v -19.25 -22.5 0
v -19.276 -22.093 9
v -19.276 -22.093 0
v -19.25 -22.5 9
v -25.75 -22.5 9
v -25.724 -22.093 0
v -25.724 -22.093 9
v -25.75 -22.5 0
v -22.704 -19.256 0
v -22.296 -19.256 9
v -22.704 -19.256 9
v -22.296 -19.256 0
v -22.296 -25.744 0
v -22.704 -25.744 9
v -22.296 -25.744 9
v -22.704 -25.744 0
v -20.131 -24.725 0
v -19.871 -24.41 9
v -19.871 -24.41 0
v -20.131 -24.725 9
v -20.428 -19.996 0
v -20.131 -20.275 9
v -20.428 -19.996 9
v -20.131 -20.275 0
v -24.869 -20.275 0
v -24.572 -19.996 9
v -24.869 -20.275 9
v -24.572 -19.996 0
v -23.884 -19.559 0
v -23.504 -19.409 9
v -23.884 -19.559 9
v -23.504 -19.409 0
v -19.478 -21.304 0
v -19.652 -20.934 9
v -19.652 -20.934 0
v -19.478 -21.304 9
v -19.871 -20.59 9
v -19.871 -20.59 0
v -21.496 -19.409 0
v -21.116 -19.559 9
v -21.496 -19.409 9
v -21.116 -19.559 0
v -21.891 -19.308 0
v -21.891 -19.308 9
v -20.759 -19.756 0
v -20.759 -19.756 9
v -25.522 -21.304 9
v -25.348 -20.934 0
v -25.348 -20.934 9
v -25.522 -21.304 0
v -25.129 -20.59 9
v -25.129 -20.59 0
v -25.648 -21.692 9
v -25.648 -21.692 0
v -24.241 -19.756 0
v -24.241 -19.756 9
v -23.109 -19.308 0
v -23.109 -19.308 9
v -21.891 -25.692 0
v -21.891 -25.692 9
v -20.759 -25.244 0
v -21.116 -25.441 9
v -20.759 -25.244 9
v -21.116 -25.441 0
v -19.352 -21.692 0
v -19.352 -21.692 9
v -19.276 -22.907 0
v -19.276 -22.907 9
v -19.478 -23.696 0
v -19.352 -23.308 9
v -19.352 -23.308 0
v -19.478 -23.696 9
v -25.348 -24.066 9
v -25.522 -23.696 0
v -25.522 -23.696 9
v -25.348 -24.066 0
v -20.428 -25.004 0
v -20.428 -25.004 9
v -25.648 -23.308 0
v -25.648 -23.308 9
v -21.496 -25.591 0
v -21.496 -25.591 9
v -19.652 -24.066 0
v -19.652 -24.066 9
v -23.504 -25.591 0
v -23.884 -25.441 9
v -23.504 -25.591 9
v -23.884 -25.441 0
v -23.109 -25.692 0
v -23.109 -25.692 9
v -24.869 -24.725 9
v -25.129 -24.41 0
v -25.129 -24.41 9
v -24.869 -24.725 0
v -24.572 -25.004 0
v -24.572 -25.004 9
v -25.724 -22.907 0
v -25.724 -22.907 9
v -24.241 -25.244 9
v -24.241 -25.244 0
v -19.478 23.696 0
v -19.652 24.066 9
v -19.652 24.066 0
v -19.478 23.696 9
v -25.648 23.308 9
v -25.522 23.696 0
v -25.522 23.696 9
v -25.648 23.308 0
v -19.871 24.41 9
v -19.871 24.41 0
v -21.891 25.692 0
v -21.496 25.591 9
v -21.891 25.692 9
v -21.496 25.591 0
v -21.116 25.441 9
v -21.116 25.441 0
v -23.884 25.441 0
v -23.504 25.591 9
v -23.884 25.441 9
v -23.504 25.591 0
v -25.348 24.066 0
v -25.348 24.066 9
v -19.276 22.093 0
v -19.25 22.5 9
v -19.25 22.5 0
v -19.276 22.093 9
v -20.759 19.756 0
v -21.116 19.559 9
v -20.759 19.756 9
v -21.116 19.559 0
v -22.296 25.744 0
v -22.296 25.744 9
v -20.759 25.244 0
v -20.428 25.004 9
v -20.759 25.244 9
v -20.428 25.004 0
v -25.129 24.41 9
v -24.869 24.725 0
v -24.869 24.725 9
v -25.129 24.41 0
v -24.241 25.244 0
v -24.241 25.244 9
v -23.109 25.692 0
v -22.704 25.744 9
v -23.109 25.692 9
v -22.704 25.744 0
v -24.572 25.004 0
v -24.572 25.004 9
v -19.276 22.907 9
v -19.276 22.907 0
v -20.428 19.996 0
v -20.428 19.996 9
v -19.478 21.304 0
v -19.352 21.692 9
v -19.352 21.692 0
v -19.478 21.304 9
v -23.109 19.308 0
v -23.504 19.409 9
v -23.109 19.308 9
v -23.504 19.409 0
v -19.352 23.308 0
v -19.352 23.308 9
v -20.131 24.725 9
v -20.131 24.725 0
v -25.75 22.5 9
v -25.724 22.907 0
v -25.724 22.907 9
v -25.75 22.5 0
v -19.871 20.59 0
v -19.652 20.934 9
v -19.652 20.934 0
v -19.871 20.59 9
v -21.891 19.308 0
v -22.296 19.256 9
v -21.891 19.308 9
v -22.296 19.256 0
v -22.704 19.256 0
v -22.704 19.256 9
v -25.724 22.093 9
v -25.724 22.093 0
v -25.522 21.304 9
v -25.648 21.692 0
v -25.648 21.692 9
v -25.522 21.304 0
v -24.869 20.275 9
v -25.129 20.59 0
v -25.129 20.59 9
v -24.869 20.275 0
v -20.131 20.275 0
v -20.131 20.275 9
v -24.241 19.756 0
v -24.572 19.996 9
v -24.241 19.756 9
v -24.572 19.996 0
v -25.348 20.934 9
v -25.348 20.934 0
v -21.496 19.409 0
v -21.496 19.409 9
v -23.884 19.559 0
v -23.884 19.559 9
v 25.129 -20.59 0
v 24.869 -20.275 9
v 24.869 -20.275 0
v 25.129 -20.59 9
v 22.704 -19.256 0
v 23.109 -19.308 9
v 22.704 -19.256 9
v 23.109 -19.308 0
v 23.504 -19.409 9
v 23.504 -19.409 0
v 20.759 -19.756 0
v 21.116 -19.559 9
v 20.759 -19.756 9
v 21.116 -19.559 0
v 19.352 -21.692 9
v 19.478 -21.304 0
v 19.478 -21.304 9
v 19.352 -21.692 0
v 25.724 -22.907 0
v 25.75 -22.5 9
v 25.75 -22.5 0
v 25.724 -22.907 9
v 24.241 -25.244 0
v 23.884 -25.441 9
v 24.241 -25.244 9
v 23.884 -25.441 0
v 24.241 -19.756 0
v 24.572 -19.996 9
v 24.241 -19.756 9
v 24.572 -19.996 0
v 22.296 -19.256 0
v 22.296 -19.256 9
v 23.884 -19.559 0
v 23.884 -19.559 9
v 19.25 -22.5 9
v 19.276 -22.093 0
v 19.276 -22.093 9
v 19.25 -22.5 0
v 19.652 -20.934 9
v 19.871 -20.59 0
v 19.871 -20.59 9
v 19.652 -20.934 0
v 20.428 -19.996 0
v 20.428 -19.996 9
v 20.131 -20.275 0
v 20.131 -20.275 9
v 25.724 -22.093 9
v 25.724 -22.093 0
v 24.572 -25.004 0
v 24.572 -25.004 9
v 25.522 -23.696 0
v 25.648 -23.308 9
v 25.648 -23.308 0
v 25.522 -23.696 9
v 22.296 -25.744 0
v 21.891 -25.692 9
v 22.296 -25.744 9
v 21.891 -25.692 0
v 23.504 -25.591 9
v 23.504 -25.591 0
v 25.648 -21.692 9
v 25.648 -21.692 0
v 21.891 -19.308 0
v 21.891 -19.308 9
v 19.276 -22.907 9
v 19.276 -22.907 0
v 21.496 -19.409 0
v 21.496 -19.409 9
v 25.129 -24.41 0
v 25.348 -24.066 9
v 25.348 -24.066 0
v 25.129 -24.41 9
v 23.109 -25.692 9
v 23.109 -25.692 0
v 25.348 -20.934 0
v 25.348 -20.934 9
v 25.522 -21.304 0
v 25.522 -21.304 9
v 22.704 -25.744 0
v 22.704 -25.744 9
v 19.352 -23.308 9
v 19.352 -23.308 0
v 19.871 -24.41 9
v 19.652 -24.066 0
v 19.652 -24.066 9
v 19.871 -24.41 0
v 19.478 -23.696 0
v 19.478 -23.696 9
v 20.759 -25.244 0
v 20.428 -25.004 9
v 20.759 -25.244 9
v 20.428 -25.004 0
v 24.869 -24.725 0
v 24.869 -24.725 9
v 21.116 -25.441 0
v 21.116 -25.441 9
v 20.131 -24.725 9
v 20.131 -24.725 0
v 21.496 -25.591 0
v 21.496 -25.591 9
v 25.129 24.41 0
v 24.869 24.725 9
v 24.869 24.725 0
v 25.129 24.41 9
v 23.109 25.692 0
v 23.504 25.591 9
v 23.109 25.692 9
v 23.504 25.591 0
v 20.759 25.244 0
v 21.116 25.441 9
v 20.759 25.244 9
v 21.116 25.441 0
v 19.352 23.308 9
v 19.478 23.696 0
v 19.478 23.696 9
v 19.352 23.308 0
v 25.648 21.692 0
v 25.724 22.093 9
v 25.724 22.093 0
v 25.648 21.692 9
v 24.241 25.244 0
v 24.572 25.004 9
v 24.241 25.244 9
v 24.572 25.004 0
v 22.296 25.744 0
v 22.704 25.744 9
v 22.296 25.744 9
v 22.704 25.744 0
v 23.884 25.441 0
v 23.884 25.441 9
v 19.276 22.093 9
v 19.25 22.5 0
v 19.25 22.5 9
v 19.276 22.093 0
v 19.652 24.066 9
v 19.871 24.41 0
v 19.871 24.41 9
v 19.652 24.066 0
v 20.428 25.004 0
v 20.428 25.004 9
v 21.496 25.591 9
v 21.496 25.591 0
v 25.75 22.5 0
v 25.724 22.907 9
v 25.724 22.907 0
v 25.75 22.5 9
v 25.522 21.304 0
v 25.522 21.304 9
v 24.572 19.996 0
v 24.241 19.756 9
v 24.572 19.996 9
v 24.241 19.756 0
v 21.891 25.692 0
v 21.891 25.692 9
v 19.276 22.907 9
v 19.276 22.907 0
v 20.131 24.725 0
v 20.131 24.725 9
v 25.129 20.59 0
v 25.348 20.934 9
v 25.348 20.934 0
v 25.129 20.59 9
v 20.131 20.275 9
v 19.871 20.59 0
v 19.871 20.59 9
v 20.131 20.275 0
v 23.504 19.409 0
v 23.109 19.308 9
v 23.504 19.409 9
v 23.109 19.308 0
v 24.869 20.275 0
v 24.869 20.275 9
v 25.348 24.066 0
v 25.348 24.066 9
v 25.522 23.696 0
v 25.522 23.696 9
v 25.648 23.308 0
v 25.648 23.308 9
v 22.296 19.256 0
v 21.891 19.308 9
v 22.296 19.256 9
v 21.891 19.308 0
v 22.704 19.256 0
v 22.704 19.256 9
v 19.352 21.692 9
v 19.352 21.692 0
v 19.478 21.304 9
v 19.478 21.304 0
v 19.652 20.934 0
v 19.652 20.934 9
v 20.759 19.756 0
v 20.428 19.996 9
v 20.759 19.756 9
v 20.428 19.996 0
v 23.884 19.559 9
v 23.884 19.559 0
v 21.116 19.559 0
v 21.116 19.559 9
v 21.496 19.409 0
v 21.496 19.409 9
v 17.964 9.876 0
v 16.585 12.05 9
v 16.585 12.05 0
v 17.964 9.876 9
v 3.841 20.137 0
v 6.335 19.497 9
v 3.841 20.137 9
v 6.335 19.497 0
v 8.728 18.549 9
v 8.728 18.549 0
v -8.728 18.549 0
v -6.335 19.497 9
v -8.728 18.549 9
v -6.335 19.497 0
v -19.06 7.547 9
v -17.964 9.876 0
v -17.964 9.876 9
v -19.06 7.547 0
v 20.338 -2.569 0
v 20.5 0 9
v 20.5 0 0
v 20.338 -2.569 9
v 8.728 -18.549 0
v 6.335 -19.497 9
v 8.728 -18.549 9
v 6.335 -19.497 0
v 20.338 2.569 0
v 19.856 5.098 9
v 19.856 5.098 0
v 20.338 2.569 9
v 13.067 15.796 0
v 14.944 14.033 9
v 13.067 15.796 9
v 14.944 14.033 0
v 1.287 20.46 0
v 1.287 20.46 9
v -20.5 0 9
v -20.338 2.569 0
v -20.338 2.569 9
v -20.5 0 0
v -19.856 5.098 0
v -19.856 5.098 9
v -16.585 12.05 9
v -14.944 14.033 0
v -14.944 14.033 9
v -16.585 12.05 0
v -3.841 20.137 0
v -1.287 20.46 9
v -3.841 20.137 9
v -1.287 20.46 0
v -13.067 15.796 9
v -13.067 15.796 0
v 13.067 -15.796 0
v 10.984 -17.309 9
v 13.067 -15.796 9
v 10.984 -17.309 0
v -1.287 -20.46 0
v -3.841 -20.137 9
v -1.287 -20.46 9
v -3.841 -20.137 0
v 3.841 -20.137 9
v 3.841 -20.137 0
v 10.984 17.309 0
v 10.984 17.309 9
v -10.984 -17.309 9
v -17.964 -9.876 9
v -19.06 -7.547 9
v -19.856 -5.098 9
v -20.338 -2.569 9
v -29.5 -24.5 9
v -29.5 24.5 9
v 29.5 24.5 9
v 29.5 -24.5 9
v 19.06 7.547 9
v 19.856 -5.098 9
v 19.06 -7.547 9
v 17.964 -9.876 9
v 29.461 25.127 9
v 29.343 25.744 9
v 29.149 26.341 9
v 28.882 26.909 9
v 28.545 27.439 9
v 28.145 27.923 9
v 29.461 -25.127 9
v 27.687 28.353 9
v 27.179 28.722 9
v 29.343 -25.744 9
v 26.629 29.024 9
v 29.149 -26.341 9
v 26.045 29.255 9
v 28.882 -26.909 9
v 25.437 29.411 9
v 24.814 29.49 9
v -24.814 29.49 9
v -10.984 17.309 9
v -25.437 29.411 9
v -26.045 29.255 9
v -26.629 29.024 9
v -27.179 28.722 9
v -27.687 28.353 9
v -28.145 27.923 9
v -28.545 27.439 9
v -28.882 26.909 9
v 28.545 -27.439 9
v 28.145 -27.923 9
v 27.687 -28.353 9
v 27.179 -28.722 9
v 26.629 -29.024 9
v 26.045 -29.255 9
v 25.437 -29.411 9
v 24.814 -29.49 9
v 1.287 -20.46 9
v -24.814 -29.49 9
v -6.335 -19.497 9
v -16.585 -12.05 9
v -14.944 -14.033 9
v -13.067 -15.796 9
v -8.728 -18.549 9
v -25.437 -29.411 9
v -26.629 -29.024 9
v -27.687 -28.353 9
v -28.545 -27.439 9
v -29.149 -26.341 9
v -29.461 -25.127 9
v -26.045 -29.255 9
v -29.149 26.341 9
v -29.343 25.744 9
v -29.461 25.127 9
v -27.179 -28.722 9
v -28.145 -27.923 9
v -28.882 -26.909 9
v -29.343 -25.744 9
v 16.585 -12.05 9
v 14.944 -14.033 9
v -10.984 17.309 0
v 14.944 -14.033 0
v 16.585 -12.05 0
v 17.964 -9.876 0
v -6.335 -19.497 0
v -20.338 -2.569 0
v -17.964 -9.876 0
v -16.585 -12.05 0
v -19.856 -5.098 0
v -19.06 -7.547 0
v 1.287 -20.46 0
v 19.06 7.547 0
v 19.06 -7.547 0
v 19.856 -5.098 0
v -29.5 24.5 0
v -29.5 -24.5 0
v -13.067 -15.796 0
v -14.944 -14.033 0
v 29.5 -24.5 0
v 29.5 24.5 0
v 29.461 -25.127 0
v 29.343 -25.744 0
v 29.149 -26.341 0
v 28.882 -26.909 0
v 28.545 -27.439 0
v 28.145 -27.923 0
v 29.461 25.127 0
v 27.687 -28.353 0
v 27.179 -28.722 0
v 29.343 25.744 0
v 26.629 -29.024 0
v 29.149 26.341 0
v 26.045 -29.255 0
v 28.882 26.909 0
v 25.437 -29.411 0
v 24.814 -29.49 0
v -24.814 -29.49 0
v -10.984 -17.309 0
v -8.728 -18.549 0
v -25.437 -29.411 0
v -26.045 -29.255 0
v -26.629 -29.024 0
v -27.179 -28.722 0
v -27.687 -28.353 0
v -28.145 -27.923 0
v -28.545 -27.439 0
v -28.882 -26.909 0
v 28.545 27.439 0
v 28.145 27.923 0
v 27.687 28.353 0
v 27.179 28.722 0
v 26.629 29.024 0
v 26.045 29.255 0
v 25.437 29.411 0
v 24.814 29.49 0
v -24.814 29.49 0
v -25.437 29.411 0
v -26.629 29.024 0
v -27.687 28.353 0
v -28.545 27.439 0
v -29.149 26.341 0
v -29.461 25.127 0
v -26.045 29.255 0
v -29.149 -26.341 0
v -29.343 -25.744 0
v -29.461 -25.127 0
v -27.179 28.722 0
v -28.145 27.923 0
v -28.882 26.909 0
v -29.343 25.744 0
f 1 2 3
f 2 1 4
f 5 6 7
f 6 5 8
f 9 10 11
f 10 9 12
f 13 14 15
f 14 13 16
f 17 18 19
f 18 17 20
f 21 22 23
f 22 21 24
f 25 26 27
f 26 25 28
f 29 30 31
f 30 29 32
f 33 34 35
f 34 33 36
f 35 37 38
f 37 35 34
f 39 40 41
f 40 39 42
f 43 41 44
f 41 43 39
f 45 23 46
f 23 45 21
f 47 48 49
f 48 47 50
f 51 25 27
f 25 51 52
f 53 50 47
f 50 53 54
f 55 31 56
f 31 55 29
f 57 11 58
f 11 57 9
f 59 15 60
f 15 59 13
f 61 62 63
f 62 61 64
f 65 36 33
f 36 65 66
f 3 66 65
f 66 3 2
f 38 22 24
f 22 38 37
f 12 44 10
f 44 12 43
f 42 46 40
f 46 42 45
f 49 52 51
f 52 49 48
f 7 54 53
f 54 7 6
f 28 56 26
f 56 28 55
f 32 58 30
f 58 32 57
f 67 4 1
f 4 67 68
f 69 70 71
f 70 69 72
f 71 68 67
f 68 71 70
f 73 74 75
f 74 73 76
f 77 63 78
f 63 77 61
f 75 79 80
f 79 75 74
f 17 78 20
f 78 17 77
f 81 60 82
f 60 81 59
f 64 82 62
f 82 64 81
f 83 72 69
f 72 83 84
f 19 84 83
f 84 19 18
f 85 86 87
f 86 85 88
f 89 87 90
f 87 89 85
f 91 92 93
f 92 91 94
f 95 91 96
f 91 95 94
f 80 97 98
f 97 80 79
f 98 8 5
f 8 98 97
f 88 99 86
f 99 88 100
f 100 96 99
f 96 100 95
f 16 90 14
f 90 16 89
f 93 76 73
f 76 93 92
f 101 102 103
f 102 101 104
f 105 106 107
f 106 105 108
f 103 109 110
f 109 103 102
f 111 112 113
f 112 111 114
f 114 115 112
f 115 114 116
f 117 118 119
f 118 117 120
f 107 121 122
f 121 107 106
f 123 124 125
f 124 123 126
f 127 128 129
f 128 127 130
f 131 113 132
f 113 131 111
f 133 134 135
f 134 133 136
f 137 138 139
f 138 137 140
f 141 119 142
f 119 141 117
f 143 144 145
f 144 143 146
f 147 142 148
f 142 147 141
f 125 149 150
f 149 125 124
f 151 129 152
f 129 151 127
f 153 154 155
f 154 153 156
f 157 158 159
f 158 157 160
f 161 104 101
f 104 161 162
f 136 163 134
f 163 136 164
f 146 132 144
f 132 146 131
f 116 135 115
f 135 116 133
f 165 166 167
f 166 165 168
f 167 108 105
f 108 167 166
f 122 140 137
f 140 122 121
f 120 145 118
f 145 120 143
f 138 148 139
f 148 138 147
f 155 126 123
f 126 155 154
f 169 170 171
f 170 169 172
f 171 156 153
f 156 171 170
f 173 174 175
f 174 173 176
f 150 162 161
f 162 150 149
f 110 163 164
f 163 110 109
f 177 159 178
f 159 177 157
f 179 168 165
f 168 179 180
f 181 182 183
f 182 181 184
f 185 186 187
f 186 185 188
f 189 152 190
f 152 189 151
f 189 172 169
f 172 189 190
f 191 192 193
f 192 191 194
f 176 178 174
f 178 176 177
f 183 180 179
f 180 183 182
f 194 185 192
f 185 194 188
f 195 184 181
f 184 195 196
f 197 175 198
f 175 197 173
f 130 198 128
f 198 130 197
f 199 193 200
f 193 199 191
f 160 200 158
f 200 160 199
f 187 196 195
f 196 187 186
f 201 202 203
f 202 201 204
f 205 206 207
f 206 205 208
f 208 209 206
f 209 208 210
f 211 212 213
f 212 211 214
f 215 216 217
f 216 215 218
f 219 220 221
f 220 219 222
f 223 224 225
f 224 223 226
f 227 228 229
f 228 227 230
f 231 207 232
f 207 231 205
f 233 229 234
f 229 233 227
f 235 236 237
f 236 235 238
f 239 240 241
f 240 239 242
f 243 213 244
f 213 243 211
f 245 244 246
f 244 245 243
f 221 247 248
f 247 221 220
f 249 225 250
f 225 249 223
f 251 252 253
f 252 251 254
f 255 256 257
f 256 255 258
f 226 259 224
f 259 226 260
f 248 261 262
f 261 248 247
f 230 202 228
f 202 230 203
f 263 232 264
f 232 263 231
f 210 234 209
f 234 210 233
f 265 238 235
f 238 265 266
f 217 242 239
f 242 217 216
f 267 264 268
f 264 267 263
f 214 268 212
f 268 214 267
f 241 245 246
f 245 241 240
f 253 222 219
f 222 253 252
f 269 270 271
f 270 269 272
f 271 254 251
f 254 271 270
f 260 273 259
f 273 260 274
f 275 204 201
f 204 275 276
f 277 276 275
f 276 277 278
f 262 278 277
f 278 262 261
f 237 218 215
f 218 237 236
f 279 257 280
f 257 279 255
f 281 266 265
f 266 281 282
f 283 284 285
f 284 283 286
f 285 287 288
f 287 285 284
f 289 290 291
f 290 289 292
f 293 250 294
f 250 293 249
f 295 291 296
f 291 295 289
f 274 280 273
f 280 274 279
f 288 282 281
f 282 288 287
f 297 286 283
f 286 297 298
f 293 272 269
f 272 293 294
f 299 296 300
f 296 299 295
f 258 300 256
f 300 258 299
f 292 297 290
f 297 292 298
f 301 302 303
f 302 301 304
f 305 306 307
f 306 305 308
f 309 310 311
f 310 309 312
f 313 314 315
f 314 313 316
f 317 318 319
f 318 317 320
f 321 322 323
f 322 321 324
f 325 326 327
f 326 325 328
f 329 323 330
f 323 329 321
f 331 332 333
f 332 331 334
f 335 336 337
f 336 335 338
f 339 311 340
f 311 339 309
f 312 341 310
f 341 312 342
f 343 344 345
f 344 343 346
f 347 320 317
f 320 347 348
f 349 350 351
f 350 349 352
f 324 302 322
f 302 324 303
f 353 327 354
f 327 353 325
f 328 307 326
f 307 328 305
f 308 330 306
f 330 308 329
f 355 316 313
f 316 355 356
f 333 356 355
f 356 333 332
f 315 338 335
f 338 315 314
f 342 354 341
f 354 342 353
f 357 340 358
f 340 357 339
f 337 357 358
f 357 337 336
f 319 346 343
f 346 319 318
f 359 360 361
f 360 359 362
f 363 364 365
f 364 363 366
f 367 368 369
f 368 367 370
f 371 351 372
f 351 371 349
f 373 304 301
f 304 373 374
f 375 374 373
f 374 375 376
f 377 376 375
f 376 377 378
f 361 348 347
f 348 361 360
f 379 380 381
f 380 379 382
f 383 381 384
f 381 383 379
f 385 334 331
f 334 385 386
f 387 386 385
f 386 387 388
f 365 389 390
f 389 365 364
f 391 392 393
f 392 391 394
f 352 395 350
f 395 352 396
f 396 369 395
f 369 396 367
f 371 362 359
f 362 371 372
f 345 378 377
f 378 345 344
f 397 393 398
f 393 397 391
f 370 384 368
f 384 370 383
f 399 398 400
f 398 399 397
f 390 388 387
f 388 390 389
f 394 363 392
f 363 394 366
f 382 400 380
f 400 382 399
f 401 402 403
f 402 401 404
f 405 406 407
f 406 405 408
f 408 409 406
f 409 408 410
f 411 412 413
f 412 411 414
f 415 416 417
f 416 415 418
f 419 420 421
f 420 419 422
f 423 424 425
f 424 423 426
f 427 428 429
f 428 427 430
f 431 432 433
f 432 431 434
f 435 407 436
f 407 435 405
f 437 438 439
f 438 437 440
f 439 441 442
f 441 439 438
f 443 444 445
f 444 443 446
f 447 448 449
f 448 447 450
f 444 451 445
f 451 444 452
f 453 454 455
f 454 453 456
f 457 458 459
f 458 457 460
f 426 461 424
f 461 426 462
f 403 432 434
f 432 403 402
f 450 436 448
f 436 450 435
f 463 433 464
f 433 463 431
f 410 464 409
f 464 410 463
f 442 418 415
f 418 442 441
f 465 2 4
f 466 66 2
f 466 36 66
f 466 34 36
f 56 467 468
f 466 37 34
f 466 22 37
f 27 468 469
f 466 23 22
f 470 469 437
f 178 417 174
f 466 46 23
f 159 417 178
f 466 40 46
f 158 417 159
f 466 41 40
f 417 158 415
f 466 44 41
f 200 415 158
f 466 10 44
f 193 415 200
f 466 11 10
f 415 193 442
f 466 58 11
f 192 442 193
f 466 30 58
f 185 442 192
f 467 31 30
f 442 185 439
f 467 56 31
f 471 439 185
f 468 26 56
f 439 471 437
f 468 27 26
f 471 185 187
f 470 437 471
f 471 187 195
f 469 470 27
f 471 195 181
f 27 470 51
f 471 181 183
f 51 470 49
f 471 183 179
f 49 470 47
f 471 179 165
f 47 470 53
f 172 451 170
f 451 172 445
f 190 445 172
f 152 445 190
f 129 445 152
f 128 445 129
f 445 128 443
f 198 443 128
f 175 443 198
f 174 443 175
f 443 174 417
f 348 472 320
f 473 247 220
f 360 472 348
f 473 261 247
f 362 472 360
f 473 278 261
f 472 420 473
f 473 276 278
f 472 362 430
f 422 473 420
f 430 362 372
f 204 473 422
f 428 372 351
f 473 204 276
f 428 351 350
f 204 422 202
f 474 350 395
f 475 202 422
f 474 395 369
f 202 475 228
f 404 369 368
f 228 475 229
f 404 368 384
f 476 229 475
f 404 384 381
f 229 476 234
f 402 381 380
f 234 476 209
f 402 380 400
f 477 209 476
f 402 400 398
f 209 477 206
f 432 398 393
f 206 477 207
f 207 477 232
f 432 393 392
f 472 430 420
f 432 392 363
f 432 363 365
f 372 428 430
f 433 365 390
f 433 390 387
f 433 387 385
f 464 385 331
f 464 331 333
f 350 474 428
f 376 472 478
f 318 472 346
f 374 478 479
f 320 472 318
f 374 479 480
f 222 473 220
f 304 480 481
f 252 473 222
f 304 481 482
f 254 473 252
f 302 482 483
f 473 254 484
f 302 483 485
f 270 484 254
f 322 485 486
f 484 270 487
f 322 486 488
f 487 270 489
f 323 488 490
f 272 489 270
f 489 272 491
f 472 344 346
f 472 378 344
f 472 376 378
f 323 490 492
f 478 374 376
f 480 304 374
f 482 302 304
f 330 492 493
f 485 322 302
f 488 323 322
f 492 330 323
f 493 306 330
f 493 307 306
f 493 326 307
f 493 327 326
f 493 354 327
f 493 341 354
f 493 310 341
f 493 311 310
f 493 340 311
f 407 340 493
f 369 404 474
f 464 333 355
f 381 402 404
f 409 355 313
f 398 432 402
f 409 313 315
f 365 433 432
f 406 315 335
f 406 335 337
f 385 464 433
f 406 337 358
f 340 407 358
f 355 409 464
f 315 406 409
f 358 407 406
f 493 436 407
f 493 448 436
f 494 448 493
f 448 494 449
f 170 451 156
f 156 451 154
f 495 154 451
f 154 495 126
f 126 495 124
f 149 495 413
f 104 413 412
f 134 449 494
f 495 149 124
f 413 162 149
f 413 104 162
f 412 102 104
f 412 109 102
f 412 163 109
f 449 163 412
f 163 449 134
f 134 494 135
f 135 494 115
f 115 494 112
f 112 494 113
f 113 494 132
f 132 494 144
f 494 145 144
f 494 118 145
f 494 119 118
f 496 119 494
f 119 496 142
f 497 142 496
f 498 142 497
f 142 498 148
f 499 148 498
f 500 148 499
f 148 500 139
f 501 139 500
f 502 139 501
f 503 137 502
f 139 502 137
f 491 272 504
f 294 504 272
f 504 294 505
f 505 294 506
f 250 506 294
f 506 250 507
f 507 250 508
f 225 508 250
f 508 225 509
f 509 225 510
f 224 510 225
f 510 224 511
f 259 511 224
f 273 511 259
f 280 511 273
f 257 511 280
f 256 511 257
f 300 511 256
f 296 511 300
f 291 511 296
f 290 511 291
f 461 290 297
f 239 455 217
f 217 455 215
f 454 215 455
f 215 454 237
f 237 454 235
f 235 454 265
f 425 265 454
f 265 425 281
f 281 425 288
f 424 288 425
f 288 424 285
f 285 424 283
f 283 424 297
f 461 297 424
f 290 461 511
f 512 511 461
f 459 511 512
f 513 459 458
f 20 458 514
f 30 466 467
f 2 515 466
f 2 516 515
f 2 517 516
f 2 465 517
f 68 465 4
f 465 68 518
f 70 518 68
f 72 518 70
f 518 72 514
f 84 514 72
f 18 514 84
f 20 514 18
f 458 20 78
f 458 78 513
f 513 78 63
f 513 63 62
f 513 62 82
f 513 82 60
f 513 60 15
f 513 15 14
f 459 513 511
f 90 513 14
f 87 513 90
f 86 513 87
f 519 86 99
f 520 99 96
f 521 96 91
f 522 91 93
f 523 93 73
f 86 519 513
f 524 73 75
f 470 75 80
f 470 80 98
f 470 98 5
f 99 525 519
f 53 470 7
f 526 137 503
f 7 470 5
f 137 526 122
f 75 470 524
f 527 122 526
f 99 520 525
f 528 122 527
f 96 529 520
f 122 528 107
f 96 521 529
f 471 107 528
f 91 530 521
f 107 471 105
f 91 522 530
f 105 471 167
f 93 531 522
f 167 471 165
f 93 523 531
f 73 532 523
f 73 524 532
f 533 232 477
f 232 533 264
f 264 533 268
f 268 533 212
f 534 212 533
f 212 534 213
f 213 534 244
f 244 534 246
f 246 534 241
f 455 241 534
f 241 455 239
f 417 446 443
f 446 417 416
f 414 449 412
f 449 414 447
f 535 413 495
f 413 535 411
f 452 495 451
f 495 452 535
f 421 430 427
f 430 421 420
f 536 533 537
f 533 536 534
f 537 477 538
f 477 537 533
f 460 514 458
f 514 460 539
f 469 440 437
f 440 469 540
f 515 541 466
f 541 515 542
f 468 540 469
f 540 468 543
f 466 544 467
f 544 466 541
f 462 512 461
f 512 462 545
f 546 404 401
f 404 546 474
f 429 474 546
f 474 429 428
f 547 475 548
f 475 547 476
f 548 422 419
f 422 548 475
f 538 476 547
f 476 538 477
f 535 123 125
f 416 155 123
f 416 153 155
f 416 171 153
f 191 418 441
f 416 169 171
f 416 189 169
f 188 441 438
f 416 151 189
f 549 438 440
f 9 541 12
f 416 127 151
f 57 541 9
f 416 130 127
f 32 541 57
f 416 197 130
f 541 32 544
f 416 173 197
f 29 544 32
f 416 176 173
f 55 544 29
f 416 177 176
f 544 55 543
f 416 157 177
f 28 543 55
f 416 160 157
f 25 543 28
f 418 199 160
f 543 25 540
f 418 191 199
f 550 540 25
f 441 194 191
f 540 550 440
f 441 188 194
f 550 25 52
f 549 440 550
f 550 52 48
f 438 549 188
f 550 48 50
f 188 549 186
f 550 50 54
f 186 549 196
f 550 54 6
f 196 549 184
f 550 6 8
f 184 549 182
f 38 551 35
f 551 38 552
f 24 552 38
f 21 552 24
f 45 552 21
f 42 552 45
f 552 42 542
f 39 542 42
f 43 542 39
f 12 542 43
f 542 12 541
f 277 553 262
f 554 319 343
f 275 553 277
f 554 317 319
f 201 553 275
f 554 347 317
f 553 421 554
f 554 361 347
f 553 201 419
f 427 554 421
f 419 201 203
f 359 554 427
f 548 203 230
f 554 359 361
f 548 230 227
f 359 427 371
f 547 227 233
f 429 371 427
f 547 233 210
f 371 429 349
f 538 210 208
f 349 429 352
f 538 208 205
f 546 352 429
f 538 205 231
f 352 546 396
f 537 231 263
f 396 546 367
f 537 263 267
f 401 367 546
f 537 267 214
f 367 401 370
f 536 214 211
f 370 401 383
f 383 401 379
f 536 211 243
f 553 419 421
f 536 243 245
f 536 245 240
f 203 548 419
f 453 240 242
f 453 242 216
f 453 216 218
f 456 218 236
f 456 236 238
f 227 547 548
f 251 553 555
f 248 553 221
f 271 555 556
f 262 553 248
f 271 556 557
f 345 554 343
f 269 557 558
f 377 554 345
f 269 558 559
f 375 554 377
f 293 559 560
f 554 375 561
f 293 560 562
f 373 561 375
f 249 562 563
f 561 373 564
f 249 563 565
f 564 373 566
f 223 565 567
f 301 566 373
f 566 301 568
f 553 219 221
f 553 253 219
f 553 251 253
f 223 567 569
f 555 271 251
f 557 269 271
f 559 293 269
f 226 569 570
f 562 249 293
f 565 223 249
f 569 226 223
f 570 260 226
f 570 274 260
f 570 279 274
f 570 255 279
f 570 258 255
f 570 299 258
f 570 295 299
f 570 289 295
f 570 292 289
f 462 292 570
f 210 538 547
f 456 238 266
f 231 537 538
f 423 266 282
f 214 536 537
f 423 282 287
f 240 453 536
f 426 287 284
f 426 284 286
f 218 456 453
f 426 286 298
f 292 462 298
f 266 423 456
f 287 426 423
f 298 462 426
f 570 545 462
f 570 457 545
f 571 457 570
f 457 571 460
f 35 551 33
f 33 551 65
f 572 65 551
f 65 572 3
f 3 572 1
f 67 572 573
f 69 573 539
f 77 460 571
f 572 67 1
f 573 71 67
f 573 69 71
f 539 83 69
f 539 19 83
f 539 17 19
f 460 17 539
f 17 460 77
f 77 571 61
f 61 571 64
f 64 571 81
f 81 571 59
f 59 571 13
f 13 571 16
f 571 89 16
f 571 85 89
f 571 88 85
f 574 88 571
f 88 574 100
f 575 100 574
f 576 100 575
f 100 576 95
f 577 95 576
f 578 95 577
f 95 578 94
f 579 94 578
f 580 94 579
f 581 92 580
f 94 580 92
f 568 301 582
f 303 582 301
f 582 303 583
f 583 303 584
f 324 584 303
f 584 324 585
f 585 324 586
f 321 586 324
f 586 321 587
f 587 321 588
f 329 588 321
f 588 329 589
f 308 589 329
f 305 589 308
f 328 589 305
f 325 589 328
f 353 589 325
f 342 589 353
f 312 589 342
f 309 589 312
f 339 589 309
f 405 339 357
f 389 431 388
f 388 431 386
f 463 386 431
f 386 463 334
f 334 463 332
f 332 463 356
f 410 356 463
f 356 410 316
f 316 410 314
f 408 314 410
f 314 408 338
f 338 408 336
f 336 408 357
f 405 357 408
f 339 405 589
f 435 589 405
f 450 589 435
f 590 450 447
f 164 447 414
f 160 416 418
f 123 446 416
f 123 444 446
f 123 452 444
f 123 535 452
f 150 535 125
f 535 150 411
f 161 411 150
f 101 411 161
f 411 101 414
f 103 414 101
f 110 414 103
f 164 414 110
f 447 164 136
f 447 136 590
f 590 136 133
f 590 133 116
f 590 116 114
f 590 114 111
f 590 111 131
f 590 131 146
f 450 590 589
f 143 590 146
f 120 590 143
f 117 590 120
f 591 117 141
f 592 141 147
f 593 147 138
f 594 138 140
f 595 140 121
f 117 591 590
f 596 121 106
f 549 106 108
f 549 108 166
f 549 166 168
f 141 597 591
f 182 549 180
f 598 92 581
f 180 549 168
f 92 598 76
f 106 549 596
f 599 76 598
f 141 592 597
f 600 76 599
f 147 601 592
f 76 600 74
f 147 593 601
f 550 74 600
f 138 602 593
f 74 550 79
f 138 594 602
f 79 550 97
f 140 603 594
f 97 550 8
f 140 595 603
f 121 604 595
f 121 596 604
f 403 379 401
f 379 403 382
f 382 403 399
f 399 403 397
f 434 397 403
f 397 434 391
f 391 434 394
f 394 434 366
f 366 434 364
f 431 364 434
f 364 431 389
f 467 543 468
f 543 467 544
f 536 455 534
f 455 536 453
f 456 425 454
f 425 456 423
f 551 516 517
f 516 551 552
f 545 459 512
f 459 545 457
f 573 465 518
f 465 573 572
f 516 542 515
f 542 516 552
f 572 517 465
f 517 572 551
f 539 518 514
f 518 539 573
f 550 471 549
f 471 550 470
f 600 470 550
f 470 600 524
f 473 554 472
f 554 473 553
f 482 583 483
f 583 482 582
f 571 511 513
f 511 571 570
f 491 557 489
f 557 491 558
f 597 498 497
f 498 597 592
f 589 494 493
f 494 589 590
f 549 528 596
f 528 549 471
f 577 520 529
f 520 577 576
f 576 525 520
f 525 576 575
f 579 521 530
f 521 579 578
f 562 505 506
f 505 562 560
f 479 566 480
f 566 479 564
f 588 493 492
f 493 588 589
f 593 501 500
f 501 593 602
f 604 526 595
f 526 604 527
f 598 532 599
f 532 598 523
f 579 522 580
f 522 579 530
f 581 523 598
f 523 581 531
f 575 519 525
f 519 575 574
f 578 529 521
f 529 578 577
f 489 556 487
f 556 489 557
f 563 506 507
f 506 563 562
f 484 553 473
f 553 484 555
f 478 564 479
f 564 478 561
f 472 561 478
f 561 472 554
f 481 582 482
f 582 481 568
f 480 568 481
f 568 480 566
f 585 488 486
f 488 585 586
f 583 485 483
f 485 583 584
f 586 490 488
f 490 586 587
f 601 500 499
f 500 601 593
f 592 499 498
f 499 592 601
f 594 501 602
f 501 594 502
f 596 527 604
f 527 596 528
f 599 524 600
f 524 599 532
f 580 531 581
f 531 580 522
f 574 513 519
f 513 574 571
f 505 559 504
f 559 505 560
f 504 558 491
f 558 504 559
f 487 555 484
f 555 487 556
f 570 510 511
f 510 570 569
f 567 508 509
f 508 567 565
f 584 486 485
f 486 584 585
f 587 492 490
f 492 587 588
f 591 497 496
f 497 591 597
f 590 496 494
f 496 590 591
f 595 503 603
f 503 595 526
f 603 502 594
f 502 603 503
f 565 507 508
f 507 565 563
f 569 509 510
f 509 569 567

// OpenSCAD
$fn = 50;


difference() {
	union() {
		hull() {
			translate(v = [-24.5000000000, 24.5000000000, 0]) {
				cylinder(h = 9, r = 5);
			}
			translate(v = [24.5000000000, 24.5000000000, 0]) {
				cylinder(h = 9, r = 5);
			}
			translate(v = [-24.5000000000, -24.5000000000, 0]) {
				cylinder(h = 9, r = 5);
			}
			translate(v = [24.5000000000, -24.5000000000, 0]) {
				cylinder(h = 9, r = 5);
			}
		}
	}
	union() {
		#translate(v = [-22.5000000000, -22.5000000000, -100.0000000000]) {
			cylinder(h = 200, r = 3.2500000000);
		}
		#translate(v = [-22.5000000000, 22.5000000000, -100.0000000000]) {
			cylinder(h = 200, r = 3.2500000000);
		}
		#translate(v = [22.5000000000, -22.5000000000, -100.0000000000]) {
			cylinder(h = 200, r = 3.2500000000);
		}
		#translate(v = [22.5000000000, 22.5000000000, -100.0000000000]) {
			cylinder(h = 200, r = 3.2500000000);
		}
		#cylinder(h = 9, r = 20.5000000000);
	}
}
